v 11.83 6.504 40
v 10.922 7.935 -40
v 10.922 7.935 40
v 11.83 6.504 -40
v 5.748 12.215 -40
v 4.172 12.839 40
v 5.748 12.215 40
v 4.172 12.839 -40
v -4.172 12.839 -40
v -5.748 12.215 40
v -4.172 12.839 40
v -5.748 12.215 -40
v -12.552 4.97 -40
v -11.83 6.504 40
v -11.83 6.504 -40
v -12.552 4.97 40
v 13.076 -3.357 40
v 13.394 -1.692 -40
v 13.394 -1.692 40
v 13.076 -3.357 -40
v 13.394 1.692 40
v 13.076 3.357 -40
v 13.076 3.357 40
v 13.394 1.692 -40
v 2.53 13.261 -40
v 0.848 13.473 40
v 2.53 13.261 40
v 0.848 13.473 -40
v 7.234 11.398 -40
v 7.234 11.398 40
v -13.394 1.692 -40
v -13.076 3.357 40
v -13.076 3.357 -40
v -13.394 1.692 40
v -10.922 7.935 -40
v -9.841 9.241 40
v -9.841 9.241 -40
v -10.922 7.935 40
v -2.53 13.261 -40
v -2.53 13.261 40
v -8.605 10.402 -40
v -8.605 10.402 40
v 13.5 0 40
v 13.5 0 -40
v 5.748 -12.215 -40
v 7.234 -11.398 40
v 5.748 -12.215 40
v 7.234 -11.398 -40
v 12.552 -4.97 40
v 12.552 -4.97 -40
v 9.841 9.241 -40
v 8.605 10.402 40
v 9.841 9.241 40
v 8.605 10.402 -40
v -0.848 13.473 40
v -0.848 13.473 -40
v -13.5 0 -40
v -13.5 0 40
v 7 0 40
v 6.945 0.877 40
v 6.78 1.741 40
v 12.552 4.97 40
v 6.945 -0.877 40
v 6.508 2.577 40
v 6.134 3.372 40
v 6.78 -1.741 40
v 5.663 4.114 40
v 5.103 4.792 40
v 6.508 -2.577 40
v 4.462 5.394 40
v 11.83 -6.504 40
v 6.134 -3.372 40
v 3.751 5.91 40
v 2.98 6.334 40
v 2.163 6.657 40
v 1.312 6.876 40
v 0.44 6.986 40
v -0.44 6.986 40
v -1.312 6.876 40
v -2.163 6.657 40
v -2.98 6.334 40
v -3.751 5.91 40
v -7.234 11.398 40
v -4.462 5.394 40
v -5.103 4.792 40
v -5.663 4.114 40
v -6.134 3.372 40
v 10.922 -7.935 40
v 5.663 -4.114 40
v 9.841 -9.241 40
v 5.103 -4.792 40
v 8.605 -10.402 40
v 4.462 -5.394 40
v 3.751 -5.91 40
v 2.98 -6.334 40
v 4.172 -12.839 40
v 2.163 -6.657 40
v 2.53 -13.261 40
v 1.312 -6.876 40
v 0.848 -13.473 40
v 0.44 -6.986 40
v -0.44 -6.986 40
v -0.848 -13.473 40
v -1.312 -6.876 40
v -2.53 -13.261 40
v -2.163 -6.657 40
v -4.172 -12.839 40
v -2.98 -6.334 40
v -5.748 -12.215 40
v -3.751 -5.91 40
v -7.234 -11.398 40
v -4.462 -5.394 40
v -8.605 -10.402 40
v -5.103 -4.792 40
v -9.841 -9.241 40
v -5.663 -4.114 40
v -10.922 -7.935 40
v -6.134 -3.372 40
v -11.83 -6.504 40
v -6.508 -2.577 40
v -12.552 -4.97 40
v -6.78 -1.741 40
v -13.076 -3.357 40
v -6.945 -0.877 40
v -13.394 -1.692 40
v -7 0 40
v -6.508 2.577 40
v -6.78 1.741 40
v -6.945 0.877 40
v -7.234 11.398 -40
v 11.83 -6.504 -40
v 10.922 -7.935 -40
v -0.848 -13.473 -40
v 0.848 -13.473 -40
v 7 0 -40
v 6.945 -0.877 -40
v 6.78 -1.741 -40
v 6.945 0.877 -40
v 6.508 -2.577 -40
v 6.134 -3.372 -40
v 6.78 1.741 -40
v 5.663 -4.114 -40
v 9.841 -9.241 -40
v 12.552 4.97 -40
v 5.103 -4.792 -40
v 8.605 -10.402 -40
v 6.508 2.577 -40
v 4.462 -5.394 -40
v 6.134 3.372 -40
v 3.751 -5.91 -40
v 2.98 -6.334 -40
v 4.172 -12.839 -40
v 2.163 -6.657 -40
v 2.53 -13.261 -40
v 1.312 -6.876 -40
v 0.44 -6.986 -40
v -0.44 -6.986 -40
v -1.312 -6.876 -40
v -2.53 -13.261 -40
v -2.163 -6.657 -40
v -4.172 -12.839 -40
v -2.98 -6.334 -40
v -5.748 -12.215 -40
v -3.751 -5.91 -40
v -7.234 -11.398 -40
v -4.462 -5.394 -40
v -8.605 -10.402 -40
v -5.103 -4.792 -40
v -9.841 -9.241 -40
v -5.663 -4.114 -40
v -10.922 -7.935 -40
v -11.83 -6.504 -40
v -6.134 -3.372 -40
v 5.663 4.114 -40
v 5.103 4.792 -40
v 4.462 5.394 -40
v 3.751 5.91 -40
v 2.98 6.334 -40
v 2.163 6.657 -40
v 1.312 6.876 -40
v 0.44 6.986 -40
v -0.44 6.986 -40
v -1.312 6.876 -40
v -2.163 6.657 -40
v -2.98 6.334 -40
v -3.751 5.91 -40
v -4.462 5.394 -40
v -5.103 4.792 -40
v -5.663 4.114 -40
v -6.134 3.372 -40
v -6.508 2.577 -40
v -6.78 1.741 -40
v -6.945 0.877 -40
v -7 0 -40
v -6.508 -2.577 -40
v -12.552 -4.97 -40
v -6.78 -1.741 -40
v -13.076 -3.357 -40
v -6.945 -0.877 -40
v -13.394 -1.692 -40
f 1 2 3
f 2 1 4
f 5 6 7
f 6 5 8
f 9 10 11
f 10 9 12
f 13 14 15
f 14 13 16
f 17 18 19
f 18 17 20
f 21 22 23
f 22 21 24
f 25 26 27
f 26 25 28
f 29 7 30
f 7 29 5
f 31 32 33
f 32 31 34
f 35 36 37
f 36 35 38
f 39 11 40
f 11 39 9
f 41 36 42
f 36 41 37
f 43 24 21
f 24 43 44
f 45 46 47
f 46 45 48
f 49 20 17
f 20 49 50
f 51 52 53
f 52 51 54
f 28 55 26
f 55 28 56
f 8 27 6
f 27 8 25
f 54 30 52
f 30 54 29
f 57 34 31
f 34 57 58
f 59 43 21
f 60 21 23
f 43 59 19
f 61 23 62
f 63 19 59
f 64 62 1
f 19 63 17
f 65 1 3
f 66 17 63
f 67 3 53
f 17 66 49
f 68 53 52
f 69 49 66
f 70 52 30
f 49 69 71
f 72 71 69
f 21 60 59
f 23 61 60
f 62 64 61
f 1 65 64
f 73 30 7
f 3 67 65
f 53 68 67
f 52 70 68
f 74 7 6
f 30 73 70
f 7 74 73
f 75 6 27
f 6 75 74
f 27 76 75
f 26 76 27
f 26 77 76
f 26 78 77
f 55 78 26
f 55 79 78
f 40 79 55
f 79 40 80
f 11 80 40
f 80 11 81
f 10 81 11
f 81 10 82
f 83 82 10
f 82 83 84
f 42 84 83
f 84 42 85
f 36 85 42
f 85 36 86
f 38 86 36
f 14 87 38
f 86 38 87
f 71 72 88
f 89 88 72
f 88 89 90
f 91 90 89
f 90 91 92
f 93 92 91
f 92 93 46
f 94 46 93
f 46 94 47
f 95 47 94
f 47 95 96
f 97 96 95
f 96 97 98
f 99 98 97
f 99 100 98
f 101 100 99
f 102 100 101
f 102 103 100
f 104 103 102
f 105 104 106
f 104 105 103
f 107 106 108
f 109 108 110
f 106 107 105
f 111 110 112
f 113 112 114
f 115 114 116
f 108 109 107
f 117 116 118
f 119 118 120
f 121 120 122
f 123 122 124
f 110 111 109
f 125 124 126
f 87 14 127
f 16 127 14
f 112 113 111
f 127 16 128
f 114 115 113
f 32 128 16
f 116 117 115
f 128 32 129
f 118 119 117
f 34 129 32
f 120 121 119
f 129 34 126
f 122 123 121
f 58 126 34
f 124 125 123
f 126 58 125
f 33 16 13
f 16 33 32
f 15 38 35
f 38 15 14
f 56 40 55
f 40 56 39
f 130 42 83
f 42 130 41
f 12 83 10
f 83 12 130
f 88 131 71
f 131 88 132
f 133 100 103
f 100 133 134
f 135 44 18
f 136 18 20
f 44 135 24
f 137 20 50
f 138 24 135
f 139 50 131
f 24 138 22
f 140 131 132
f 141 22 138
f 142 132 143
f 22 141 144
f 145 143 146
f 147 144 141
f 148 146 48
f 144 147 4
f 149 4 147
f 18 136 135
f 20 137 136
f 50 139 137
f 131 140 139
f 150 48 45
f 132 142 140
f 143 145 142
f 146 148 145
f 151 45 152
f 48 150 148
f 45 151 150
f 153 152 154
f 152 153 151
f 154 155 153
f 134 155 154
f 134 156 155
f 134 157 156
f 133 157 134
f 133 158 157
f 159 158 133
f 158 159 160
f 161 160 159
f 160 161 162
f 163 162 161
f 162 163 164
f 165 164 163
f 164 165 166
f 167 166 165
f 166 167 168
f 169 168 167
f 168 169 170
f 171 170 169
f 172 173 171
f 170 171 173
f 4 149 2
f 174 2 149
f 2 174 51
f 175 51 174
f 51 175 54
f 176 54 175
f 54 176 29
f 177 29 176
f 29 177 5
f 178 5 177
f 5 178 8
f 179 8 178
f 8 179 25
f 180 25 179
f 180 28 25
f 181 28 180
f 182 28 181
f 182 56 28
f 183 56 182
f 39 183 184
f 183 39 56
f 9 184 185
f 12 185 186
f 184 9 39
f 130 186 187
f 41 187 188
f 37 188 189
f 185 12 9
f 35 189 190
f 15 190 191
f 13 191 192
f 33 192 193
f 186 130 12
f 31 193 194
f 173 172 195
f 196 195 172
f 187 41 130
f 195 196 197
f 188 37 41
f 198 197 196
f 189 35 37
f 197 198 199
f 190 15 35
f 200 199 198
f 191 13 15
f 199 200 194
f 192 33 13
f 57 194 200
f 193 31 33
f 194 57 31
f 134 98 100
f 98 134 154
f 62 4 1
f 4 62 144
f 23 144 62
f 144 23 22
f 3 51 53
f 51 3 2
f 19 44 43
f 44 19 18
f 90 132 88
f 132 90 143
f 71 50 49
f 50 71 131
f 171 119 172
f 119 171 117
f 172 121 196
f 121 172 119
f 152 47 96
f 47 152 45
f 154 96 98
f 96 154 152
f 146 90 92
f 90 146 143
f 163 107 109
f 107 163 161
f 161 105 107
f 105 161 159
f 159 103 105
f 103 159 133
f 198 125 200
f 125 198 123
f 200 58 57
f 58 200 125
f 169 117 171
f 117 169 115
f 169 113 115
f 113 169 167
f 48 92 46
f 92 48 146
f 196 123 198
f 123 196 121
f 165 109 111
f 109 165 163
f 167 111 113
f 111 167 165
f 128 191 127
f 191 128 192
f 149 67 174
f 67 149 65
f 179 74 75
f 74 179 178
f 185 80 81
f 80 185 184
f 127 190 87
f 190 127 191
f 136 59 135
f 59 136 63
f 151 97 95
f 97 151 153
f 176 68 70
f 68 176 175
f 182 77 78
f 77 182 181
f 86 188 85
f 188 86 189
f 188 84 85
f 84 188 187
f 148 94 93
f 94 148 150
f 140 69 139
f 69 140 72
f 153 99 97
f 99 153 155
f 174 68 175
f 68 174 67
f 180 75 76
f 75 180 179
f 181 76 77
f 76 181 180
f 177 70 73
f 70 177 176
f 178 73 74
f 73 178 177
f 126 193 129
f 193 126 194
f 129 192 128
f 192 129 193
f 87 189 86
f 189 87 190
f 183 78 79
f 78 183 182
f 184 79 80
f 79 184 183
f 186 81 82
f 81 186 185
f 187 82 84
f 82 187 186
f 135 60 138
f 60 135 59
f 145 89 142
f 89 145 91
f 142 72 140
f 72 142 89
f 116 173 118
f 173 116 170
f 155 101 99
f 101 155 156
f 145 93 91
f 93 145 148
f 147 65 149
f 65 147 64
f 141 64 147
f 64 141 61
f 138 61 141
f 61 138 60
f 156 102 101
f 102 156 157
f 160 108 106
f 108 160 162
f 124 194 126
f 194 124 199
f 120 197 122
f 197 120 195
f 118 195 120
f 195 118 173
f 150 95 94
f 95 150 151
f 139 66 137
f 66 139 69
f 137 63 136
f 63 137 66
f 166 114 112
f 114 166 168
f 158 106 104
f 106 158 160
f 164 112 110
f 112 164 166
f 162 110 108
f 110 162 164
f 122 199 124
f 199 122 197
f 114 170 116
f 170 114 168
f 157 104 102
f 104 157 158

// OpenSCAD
$fn = 50;


difference() {
	union() {
		translate(v = [0, 0, -40.0000000000]) {
			cylinder(h = 80, r = 13.5000000000);
		}
	}
	union() {
		translate(v = [0, 0, -100.0000000000]) {
			cylinder(h = 200, r = 7);
		}
	}
}
